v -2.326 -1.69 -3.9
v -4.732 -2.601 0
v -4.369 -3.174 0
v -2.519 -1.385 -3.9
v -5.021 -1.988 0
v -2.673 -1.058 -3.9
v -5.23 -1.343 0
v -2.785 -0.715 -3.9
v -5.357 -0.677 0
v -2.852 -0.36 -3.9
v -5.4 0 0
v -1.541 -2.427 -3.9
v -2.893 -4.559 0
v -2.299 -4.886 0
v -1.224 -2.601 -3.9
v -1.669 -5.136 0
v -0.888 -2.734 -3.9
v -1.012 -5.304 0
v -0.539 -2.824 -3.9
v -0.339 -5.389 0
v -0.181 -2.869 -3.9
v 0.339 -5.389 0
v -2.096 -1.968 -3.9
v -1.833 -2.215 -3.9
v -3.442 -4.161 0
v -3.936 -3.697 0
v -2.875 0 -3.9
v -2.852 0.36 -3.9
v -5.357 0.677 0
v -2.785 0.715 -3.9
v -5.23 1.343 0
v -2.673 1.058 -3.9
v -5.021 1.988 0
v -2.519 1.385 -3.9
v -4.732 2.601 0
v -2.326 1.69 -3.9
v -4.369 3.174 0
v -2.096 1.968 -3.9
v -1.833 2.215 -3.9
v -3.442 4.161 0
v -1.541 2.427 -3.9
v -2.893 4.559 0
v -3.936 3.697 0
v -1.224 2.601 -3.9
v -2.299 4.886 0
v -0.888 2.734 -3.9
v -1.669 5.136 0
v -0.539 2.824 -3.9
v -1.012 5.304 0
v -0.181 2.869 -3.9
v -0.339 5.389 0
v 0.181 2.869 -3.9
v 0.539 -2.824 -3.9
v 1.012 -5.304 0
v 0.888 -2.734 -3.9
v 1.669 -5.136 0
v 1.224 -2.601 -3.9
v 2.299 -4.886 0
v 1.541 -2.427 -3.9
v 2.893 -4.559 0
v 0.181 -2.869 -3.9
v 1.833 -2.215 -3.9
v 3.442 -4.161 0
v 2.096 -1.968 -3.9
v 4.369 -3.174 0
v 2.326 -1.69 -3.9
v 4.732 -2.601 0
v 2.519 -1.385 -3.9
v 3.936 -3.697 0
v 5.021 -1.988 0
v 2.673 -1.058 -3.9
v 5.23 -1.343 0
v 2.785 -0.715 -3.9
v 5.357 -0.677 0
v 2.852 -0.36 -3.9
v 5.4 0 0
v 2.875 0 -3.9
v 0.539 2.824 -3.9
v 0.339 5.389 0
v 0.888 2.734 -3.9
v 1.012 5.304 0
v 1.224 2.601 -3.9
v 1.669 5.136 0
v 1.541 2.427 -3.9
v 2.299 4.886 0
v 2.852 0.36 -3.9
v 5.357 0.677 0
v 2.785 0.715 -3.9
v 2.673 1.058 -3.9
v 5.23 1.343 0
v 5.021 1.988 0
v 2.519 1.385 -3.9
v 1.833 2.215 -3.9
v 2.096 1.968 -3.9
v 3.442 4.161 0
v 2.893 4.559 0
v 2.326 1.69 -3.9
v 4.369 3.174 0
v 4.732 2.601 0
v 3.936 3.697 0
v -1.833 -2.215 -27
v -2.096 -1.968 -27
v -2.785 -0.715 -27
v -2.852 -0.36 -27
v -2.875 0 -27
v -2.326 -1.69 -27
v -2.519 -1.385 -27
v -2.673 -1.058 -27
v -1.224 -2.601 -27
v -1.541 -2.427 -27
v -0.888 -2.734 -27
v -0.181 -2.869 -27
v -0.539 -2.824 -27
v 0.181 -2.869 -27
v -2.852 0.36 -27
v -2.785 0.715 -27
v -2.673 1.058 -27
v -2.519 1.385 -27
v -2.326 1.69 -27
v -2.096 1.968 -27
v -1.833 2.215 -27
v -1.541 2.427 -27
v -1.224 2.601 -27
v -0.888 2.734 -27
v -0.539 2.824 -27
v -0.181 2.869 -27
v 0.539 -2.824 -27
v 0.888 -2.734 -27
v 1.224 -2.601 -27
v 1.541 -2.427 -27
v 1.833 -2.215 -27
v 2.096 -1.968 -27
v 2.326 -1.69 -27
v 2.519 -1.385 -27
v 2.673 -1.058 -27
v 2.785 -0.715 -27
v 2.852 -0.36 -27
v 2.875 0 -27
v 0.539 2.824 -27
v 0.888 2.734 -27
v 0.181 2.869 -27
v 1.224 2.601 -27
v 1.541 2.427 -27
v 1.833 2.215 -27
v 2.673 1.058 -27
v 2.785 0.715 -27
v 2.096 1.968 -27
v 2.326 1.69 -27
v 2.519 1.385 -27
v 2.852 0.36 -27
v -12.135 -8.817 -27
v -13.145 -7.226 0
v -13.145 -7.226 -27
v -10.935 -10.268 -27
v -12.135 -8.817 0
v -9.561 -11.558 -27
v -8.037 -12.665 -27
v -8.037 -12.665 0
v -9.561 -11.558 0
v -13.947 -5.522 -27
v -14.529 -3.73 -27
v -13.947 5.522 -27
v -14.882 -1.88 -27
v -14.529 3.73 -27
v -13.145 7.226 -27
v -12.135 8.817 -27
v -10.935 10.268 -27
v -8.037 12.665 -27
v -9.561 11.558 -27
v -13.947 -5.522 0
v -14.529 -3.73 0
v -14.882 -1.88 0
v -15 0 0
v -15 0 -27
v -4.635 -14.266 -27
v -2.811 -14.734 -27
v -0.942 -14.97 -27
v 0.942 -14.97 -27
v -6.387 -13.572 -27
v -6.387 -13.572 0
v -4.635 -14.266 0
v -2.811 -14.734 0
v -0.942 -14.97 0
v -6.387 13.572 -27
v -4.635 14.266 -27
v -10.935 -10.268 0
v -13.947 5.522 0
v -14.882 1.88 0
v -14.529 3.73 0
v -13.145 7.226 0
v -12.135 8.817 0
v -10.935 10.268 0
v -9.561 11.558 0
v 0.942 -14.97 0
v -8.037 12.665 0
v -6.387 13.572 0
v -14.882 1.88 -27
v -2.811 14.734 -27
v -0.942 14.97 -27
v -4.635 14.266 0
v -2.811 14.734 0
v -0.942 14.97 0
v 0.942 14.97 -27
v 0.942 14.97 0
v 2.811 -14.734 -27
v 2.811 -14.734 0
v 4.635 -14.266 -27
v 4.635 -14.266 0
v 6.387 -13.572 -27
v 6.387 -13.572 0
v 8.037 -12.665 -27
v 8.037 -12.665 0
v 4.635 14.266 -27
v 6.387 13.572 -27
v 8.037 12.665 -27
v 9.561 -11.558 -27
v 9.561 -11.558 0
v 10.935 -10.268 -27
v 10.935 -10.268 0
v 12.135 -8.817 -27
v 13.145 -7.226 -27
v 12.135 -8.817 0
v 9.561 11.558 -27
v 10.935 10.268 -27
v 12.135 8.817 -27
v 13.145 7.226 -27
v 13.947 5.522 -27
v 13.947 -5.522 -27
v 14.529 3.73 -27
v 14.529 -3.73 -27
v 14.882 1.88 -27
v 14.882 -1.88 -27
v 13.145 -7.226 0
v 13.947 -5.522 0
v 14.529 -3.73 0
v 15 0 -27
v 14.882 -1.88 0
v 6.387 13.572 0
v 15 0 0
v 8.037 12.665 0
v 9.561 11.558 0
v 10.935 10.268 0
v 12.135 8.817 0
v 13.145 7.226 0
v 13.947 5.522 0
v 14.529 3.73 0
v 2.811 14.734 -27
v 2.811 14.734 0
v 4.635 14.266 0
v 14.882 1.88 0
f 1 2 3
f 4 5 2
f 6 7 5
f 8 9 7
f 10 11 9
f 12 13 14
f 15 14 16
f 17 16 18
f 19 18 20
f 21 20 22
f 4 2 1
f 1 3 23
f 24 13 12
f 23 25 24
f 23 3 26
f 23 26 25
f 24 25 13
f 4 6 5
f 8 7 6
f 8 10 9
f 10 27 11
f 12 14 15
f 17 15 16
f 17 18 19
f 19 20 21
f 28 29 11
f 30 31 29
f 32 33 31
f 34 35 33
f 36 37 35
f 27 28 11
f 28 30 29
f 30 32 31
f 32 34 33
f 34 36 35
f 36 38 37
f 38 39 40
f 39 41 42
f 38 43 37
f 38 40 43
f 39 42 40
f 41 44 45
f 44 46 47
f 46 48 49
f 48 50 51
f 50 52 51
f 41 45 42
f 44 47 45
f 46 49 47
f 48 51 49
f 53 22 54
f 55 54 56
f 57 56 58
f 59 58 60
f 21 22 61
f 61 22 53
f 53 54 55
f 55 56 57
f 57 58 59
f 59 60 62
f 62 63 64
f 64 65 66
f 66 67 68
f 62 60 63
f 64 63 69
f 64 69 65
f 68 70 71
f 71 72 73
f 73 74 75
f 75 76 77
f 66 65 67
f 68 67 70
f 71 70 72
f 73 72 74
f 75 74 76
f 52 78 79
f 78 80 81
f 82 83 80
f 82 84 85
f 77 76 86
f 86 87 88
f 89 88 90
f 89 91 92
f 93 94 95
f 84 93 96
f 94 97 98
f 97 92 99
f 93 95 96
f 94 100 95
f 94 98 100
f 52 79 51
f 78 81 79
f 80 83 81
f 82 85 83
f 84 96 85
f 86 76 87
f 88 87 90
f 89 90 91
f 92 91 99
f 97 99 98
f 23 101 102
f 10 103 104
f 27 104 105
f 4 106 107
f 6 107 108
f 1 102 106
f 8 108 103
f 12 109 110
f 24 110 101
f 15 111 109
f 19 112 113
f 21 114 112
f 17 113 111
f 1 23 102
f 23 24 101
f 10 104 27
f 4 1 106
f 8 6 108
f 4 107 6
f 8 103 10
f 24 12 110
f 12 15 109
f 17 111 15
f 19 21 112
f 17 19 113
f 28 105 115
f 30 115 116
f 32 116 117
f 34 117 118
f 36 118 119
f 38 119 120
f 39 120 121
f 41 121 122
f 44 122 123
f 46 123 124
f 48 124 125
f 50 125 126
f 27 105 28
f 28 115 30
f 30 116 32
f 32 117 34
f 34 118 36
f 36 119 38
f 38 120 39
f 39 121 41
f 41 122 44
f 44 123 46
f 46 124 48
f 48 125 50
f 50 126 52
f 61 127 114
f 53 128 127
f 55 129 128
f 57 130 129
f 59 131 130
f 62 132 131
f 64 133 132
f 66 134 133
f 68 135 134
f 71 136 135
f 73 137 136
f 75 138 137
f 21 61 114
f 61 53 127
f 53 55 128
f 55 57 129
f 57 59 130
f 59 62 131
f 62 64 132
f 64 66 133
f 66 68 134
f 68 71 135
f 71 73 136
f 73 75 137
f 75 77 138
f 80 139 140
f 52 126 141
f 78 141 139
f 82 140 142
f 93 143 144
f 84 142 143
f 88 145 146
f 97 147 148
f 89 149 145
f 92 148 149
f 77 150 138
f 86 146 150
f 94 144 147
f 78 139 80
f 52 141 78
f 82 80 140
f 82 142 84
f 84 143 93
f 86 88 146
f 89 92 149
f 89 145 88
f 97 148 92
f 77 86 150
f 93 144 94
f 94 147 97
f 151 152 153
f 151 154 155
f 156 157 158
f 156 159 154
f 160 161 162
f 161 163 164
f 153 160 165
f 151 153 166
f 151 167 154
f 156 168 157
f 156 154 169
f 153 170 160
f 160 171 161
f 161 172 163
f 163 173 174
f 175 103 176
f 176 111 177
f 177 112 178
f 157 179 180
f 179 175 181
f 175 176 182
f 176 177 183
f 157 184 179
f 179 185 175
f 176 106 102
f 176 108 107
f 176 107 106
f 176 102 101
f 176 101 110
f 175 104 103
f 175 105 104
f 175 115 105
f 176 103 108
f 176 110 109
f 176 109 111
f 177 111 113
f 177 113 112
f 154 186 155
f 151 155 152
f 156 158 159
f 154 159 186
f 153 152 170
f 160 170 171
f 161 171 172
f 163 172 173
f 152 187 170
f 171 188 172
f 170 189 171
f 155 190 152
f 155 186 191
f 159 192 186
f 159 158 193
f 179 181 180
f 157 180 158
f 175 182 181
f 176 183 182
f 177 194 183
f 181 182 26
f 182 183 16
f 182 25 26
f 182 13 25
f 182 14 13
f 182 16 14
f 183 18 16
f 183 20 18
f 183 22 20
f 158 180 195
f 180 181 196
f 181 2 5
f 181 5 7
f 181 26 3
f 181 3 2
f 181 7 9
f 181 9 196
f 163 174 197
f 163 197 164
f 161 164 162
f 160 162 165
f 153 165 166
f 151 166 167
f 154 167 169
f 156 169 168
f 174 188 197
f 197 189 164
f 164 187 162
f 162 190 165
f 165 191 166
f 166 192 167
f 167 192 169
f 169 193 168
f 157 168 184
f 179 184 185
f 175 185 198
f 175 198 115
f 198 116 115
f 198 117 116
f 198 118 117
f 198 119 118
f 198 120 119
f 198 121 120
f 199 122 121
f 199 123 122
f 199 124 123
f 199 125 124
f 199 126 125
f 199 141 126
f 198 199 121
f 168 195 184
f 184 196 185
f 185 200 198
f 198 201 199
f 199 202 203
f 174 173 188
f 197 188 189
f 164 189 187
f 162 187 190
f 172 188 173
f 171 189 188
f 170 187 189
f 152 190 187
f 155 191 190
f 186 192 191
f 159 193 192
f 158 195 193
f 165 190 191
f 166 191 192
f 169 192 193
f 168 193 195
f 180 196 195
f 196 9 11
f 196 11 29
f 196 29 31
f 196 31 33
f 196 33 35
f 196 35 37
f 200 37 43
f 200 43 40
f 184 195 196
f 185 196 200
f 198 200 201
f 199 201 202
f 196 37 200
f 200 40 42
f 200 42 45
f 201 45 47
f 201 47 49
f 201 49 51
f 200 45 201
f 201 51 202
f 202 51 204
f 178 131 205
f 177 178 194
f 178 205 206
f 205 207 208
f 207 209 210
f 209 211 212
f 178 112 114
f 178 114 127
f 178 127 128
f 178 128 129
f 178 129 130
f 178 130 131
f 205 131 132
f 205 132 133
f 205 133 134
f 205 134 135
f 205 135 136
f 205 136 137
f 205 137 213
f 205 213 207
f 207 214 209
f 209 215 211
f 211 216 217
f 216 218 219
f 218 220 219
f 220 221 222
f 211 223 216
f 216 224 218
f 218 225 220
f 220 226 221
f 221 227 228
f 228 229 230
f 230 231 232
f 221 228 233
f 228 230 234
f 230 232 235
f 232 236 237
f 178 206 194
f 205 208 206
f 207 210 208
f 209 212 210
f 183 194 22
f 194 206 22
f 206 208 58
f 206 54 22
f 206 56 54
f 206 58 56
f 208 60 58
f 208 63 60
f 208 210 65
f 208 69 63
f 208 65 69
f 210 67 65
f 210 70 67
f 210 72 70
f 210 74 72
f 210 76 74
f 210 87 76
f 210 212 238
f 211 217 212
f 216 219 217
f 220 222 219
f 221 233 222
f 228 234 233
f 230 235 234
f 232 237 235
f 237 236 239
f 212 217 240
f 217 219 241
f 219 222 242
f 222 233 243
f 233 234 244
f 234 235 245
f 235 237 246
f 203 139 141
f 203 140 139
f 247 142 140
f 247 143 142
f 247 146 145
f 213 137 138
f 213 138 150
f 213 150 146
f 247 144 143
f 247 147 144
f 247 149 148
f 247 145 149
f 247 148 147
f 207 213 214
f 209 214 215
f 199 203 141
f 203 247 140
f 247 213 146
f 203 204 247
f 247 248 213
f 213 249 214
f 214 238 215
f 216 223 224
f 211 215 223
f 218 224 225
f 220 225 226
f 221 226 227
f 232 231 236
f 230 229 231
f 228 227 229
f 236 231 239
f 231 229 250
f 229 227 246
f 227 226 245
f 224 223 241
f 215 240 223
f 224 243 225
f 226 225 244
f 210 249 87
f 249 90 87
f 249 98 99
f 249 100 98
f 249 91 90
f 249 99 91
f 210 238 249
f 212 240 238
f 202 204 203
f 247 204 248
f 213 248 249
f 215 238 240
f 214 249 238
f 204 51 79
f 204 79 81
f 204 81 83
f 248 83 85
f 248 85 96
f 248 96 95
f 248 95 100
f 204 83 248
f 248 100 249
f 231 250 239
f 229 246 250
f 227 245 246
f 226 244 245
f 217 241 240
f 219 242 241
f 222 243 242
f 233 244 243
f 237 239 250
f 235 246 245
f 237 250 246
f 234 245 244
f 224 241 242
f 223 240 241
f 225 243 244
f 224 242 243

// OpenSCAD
$fn = 50;

difference() {
	union() {
		translate(v = [0, 0, -27.0]) {
			cylinder(h = 27, r = 15.0);
		}
	}
	union() {
		translate(v = [0, 0, 0]) {
			rotate(a = [0, 0, 0]) {
				difference() {
					union() {
						translate(v = [0, 0, -30.0]) {
							cylinder(h = 30, r = 2.6);
						}
						translate(v = [0, 0, -3.9]) {
							cylinder(h = 3.9, r1 = 2.875, r2 = 5.4);
						}
						translate(v = [0, 0, -30.0]) {
							cylinder(h = 30, r = 2.875);
						}
						translate(v = [0, 0, -30.0]) {
							cylinder(h = 30, r = 2.6);
						}
					}
					union();
				}
			}
		}
	}
}
